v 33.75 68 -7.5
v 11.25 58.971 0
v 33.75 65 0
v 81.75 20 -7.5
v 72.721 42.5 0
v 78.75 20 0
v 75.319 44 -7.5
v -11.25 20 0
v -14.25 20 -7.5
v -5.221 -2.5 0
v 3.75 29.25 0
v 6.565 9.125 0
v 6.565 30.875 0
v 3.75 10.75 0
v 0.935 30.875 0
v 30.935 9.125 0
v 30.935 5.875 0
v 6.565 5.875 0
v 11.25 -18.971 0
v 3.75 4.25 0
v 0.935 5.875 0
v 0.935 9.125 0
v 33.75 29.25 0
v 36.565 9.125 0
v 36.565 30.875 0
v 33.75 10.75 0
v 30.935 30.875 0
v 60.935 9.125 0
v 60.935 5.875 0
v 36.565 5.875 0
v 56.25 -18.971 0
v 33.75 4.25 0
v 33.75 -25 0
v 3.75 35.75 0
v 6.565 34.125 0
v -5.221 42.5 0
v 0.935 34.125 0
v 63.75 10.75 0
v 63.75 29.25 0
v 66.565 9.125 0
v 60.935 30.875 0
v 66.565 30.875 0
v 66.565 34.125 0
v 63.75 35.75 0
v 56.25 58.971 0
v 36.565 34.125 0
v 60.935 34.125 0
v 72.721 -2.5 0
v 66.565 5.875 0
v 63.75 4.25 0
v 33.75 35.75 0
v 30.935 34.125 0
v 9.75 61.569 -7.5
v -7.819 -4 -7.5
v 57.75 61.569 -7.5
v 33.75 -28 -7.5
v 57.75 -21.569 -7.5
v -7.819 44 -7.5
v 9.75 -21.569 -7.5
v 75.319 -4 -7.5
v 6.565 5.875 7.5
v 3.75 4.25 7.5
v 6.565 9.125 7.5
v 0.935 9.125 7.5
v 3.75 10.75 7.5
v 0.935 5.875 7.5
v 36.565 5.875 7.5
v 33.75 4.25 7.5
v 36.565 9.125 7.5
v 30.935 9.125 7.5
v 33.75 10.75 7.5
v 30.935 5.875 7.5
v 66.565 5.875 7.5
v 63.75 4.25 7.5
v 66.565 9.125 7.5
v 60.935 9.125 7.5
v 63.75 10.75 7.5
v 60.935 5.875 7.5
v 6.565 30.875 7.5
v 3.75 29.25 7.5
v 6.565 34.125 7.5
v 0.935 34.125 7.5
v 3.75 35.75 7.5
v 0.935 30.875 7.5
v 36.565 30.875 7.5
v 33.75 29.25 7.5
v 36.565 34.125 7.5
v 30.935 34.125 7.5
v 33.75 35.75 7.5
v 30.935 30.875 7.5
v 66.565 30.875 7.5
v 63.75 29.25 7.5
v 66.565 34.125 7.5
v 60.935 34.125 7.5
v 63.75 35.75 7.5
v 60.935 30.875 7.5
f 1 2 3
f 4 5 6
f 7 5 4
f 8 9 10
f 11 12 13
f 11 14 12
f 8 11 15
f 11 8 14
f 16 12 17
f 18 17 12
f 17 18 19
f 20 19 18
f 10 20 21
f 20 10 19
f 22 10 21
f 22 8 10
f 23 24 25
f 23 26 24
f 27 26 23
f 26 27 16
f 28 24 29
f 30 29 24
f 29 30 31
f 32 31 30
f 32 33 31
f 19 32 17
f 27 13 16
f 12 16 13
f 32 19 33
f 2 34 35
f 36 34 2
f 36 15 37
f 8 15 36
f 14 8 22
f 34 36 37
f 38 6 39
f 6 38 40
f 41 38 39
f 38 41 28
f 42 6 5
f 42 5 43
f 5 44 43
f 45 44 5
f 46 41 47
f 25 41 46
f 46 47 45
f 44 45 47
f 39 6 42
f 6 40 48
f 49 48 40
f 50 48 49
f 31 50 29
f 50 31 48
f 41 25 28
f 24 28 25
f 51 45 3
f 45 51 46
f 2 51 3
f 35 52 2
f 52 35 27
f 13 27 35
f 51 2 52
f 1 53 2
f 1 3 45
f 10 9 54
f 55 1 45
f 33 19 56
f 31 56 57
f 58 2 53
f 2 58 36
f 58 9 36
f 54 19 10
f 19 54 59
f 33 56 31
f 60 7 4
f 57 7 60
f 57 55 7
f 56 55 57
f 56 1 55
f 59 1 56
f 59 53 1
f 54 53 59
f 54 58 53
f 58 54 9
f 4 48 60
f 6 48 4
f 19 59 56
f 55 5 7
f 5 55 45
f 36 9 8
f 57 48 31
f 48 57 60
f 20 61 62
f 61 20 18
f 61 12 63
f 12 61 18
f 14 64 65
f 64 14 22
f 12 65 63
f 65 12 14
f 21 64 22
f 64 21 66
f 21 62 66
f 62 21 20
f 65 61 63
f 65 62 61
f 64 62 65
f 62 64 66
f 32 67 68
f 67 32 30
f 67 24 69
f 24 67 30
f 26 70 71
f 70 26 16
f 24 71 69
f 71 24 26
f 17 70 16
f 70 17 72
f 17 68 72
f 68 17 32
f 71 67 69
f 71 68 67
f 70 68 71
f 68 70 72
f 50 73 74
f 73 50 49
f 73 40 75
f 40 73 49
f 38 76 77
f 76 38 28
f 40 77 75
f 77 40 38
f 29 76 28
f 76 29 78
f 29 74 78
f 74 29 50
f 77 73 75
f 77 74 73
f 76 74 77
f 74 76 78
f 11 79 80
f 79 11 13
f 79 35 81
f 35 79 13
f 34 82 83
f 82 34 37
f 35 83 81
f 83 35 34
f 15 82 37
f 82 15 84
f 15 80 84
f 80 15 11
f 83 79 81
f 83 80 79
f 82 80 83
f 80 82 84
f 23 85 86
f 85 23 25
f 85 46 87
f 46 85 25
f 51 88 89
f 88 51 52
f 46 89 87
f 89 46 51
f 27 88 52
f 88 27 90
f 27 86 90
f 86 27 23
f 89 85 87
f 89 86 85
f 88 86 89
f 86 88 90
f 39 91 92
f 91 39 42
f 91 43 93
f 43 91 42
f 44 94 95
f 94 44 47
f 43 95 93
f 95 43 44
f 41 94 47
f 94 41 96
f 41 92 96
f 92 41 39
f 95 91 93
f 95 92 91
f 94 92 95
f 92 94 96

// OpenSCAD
height = 30;
depth = 40;

width = height/4;

studsWidth = width/2-0.5;

cdHole = 12;

//Base
union() {
    translate([height+(width/2),(height/2)+(width/1.5),-width])
        cylinder(width,height*1.6,height*1.5, $fn=12);

        // Patas delanteras
        translate([width/2, width, -width/2])
            rotate([0,0,30]) 
                cylinder(width*1.5,studsWidth,studsWidth, $fn=6);

        translate([height + width/2, width, -width/2])
            rotate([0,0,30]) 
                cylinder(width*1.5,studsWidth,studsWidth, $fn=6);

        translate([height*2 + width/2, width, -width/2])
            rotate([0,0,30]) 
                cylinder(width*1.5,studsWidth,studsWidth, $fn=6);

        // Patas traseras
        translate([width/2, height + width/3, -width/2])
            rotate([0,0,30]) 
                cylinder(width*1.5,studsWidth,studsWidth, $fn=6);

        translate([height + width/2, height + width/3, -width/2])
            rotate([0,0,30]) 
                cylinder(width*1.5,studsWidth,studsWidth, $fn=6);

        translate([height*2 + width/2, height + width/3, -width/2])
            rotate([0,0,30]) 
                cylinder(width*1.5,studsWidth,studsWidth, $fn=6);

    }
